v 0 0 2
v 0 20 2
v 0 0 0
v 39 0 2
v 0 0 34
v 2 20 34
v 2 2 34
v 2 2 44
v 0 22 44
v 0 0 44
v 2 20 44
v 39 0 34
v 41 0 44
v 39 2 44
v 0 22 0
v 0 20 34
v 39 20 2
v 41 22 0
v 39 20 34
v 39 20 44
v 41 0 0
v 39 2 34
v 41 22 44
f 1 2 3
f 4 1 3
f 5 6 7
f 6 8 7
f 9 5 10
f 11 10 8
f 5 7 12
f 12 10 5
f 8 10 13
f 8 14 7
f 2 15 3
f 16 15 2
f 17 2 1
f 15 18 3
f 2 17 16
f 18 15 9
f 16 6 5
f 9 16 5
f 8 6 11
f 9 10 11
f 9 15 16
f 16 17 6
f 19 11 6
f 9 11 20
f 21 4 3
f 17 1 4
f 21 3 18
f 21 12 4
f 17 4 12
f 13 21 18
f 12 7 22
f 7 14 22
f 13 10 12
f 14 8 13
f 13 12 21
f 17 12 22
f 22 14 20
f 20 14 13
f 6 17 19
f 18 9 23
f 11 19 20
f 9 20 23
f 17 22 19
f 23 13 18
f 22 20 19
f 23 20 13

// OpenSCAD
w=37;
d=18;
h=32;
t=2;
g=10;
difference() {
cube([w+2*t,d+2*t,h+t+g]);
translate([t,t,t])cube([w,d,h+g]);
translate([0,0,t])cube([w+t,d+t,h]);
}
